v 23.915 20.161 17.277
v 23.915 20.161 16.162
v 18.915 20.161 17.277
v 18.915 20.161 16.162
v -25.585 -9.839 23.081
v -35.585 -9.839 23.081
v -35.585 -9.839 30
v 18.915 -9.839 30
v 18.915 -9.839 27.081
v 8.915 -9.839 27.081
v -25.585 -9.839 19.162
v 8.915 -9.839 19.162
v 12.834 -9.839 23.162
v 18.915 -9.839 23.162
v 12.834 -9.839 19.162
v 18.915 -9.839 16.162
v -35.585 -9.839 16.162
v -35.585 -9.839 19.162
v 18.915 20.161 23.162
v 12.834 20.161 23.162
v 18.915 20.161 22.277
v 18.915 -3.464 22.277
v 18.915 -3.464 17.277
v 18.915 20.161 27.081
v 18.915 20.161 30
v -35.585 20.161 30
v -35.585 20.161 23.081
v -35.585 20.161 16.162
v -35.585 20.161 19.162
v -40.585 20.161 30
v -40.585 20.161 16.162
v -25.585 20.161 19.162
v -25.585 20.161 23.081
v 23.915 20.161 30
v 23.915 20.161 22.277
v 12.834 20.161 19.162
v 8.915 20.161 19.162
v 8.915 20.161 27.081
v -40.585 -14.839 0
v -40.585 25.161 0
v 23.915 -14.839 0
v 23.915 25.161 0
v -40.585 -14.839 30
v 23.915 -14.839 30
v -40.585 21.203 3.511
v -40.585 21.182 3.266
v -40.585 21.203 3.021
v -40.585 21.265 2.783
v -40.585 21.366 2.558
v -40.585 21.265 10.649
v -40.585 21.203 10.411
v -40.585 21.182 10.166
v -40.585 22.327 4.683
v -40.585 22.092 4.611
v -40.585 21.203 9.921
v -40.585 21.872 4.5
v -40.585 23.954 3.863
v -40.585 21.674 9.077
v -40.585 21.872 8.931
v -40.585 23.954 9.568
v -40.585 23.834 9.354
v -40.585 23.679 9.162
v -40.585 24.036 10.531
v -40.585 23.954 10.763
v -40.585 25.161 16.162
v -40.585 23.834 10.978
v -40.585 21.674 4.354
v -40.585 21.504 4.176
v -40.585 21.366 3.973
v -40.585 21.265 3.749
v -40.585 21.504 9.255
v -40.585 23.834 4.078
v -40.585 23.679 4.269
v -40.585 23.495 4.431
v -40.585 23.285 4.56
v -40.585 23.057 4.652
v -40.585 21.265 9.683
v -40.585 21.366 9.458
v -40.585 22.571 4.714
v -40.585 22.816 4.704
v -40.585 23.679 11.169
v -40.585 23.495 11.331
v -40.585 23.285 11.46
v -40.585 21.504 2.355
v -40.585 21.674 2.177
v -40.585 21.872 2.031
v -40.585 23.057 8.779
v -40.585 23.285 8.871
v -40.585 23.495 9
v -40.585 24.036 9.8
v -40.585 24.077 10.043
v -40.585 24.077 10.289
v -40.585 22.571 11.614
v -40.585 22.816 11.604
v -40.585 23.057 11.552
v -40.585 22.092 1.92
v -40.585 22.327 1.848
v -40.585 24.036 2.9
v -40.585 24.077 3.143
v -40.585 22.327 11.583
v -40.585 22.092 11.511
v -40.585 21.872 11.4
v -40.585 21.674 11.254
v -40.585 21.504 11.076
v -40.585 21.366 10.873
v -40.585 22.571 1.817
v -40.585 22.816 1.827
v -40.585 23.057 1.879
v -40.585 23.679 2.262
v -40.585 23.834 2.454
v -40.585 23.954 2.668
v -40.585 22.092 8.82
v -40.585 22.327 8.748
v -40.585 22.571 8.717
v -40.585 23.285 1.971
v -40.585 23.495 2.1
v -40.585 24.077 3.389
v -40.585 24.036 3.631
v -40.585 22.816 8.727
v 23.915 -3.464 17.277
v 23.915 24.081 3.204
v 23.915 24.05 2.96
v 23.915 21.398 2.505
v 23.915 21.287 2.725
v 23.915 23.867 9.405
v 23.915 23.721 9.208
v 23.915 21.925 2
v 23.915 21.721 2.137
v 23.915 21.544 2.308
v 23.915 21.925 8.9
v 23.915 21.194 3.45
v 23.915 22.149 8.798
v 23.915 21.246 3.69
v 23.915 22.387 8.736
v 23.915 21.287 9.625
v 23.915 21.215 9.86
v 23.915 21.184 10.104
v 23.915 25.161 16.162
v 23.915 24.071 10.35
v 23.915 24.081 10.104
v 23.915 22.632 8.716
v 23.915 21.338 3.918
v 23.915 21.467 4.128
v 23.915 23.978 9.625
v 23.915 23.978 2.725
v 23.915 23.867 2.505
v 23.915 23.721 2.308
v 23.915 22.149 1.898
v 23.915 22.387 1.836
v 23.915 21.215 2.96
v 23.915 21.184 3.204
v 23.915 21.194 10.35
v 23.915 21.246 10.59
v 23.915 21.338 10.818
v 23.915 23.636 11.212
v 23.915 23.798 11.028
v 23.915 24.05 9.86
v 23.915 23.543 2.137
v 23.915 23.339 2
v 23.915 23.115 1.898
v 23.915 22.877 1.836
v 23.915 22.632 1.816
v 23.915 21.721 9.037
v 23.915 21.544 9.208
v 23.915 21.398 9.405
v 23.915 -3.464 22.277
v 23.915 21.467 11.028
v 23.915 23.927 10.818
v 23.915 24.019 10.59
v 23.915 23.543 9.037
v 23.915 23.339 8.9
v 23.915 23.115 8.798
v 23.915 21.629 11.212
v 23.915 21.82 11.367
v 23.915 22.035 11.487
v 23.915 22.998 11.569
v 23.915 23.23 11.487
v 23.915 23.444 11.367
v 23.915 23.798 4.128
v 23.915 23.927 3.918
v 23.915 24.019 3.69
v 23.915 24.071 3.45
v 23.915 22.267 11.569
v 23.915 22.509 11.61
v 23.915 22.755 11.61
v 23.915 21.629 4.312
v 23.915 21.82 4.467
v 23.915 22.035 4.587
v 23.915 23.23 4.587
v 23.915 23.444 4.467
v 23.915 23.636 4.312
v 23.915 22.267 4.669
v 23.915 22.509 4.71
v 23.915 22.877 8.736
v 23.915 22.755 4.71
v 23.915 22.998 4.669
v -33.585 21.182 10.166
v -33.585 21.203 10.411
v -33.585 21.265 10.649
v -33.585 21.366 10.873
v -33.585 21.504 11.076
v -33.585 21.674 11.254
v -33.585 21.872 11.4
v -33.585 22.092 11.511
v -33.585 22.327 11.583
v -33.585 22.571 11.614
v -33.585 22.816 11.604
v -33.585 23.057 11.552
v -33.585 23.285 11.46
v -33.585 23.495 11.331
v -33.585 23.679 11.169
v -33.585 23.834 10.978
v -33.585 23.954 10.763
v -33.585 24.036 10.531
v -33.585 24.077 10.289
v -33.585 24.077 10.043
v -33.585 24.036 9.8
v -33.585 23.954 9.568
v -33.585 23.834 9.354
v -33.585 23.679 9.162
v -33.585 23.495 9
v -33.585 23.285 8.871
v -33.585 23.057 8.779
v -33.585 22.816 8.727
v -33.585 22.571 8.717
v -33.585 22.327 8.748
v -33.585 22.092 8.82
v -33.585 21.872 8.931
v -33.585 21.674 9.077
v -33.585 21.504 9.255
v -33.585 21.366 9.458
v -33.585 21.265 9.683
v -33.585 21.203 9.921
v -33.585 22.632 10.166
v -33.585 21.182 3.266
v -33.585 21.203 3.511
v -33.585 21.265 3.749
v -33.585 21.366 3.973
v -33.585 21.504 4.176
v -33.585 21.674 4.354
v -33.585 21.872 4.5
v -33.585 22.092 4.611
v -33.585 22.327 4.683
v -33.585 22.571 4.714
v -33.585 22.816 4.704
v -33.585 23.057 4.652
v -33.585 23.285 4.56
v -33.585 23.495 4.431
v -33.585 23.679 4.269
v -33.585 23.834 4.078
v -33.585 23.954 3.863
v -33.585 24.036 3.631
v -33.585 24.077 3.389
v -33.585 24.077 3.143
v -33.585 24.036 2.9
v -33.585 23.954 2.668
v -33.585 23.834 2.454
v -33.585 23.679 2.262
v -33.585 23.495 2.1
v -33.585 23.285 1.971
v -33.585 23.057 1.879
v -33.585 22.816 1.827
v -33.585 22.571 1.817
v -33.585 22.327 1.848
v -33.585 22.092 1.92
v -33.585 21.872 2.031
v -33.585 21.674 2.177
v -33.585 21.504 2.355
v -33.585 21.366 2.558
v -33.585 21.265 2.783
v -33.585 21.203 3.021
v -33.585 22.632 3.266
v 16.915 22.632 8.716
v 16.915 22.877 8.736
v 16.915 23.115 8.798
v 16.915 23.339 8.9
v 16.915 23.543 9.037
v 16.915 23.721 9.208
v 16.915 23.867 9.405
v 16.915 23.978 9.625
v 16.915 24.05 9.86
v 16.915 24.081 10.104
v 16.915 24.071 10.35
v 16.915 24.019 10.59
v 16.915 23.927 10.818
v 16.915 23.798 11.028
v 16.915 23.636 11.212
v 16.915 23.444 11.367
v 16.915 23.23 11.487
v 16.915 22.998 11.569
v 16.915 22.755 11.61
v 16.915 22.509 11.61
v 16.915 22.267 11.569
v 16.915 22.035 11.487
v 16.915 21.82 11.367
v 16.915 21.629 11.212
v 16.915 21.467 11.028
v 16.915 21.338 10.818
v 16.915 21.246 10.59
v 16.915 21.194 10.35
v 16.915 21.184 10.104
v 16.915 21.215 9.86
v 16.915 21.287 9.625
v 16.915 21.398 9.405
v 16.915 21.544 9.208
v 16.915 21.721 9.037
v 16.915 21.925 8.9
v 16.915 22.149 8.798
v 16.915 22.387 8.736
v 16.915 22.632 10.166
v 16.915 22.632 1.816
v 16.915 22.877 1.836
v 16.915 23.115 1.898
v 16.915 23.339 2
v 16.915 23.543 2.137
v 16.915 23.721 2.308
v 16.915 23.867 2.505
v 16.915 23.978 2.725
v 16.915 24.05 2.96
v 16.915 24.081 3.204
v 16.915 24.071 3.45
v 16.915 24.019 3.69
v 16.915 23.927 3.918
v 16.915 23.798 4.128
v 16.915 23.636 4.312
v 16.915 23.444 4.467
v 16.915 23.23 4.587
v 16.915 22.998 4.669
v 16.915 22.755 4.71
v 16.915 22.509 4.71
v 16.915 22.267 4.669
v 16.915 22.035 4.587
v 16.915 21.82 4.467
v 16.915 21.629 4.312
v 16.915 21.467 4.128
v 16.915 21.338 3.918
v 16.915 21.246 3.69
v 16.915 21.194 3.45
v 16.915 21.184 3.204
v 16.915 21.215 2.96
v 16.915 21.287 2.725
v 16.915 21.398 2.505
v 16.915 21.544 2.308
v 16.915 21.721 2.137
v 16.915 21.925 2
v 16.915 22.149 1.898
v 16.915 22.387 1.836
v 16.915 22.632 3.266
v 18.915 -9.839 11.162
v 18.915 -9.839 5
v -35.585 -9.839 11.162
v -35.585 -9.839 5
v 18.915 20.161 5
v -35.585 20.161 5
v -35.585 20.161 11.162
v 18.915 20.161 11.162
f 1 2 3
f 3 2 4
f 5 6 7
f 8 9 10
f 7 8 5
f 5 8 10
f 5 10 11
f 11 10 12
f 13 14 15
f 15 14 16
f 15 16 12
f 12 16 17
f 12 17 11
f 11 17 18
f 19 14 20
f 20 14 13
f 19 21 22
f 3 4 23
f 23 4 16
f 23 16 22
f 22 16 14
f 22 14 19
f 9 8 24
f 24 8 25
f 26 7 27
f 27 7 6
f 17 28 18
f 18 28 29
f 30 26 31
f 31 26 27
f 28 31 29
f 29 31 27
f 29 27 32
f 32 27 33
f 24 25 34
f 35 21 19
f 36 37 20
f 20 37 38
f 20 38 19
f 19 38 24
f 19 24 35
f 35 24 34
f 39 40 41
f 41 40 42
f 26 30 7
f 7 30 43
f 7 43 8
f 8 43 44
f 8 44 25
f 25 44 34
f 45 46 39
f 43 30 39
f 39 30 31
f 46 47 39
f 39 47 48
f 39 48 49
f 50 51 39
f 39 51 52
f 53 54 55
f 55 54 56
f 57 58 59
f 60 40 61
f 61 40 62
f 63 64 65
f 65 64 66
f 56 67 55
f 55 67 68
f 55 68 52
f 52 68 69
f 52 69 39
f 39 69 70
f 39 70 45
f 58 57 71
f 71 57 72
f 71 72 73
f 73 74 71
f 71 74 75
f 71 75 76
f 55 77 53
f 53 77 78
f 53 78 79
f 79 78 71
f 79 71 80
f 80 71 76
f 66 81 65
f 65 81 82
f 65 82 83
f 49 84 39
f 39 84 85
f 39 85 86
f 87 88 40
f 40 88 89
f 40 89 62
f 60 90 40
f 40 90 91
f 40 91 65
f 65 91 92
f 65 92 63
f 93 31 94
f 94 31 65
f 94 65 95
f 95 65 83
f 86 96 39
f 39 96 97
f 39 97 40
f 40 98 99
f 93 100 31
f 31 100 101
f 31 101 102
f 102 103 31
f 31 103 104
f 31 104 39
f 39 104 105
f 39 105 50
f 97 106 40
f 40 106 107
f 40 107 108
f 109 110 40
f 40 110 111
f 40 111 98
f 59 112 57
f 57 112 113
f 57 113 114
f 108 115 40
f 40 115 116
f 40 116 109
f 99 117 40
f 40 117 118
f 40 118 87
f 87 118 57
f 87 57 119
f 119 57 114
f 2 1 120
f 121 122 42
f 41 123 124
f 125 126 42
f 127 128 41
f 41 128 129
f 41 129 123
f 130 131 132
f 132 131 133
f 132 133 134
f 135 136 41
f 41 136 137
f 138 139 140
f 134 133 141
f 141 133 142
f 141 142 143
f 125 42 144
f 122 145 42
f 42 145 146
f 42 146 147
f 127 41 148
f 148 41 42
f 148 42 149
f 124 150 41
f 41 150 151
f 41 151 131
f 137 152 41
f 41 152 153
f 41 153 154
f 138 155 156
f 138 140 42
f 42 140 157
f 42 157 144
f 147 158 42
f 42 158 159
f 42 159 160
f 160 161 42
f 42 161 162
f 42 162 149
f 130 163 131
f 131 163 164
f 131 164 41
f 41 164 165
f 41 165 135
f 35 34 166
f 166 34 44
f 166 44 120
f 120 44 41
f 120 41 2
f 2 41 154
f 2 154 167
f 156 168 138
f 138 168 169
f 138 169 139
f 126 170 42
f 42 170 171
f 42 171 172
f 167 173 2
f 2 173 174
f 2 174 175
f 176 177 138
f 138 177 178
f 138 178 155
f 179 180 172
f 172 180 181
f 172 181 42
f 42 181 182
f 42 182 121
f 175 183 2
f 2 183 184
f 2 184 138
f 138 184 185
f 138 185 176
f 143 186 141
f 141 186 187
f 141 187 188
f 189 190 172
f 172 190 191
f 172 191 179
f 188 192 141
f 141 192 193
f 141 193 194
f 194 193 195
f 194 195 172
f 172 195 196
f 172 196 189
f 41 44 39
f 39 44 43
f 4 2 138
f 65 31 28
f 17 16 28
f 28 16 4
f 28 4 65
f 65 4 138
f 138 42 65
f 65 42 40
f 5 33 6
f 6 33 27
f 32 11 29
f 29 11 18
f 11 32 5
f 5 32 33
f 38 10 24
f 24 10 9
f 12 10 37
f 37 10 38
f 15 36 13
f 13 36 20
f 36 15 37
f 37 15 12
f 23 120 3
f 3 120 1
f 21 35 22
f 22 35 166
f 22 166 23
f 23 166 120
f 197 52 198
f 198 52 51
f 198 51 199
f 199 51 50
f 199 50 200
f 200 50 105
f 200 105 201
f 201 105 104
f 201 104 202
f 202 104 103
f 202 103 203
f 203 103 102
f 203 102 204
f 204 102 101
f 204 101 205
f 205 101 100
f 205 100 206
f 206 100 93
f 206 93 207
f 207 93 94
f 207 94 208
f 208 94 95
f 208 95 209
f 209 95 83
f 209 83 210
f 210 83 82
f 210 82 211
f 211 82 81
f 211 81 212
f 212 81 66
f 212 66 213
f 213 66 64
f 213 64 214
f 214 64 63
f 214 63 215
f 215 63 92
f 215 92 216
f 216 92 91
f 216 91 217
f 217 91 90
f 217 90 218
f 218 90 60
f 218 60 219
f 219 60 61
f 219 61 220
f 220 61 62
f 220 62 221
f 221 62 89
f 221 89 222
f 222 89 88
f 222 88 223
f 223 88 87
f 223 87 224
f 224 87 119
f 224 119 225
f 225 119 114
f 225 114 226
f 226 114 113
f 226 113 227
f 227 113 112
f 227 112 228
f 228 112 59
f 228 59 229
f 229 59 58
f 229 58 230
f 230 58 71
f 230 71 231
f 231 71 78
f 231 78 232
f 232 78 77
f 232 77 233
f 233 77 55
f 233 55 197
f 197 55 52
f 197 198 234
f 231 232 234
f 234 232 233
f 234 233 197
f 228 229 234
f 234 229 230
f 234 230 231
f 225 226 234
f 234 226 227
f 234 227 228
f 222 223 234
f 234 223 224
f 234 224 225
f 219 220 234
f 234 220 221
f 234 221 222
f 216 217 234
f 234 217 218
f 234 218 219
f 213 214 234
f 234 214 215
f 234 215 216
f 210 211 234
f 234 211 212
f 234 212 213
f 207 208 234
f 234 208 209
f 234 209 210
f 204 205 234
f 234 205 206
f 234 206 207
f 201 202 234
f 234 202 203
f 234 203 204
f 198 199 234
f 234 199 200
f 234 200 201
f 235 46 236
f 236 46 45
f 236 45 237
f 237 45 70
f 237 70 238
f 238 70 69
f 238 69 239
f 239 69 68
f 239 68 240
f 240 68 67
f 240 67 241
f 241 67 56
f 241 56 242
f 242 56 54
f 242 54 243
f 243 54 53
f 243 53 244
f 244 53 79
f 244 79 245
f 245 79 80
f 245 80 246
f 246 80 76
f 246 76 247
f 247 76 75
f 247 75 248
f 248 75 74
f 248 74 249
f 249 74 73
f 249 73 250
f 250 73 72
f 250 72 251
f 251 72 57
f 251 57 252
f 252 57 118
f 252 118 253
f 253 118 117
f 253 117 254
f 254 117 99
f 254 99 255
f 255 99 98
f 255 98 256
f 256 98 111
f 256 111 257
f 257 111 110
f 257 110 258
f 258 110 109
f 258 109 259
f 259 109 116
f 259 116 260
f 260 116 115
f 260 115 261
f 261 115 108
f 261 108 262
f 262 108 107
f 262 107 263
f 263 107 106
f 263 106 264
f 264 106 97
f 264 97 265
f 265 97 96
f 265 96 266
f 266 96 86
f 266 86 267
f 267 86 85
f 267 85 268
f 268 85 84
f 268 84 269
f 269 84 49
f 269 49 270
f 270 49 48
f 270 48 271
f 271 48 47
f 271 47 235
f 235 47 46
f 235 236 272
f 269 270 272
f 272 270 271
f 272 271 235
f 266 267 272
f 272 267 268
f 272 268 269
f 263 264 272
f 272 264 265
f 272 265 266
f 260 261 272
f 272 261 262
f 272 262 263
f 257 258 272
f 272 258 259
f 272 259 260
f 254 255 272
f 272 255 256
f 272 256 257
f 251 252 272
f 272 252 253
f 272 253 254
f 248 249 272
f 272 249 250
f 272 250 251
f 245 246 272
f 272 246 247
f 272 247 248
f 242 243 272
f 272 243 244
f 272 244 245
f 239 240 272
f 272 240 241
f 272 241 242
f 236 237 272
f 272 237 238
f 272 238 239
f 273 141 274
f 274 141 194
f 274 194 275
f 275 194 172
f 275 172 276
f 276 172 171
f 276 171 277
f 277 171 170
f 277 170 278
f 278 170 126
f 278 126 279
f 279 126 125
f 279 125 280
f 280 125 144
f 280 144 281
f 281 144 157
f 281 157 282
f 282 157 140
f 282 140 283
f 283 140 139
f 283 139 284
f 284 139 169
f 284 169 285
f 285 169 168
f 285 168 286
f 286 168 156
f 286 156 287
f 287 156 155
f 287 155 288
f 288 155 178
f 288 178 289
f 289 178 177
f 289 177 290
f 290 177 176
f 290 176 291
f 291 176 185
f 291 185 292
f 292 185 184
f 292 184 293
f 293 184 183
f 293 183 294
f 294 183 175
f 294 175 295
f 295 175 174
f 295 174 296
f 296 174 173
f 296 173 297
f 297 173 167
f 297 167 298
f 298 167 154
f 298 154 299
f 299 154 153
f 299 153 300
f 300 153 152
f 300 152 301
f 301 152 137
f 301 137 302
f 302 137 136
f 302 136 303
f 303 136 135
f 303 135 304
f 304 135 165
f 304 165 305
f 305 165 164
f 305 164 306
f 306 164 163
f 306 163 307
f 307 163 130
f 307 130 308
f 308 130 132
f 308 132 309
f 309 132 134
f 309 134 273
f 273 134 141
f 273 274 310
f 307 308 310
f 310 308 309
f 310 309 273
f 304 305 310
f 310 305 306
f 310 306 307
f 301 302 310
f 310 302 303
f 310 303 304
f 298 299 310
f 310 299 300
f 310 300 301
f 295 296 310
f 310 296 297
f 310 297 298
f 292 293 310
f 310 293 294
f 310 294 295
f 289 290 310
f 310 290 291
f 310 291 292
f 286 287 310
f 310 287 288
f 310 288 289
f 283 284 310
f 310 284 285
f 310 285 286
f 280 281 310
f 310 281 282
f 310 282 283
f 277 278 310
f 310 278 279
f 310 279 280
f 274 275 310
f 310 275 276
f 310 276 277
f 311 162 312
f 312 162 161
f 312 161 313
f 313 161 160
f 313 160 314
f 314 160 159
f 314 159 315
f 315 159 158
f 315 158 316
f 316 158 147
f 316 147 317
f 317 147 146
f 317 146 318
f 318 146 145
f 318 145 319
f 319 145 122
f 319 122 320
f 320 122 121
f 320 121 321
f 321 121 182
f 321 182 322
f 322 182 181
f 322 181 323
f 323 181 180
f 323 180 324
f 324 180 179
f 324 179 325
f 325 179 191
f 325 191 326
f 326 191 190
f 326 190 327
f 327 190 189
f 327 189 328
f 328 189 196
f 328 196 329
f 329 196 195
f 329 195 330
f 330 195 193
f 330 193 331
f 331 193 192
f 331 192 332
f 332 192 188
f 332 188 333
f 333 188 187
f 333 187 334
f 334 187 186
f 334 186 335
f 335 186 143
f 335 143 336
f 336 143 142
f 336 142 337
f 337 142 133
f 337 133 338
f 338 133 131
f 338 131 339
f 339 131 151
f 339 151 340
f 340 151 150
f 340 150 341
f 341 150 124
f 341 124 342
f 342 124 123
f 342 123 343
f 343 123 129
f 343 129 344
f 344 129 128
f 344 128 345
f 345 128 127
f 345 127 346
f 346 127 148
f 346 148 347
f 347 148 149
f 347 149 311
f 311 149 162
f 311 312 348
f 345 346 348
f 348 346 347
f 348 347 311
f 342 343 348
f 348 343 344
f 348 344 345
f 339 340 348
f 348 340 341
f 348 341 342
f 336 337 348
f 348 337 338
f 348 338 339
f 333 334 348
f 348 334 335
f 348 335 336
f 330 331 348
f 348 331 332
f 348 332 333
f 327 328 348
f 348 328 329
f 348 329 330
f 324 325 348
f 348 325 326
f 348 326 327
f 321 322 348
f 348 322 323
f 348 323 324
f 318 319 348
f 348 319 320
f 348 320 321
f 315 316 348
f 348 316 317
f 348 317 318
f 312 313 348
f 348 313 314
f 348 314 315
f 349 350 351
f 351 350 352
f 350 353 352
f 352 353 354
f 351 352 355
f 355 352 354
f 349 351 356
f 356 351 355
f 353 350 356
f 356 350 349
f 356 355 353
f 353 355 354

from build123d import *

# Parameters (mm, degrees)
ESQUISSE1_W             = 54.5
ESQUISSE1_H             = 30
BOSS_EXTRU_8_DEPTH      = 5
ESQUISSE7_W             = 30
ESQUISSE7_H             = 30
BOSS_EXTRU_9_DEPTH      = 5
ESQUISSE8_W             = 30
ESQUISSE8_H             = 30
BOSS_EXTRU_10_DEPTH     = 5
ESQUISSE9_W             = 64.5
ESQUISSE9_H             = 30
BOSS_EXTRU_11_DEPTH     = 5
ESQUISSE10_W            = 5
ESQUISSE10_H            = 30
BOSS_EXTRU_12_DEPTH     = 55
ESQUISSE11_W            = 64.5
ESQUISSE11_H            = 16.16204781
BOSS_EXTRU_13_DEPTH     = 5
ESQUISSE13_W            = 3.918976095
ESQUISSE13_H            = 30
BOSS_EXTRU_14_DEPTH     = 10
ESQUISSE16_W            = 3.9189761
ESQUISSE16_H            = 30
BOSS_EXTRU_15_DEPTH     = 10
ESQUISSE17_W            = 3.9189761
ESQUISSE17_H            = 30
BOSS_EXTRU_16_DEPTH     = 4
ESQUISSE20_W            = 5
ESQUISSE20_H            = 23.625106292
ENL_V_MAT_EXTRU_2_DEPTH = 7
ESQUISSE21_R            = 1.45
ENL_V_MAT_EXTRU_3_DEPTH = 7
ENL_V_START             = -7
ESQUISSE22_R            = 1.45
ENL_V_MAT_EXTRU_4_DEPTH = 7


with BuildPart() as part:
    # Esquisse1 → Boss.-Extru.8 (new body)
    with BuildSketch(Plane.XY):
        with Locations((-8.335450003, 5.161172161)):
            Rectangle(ESQUISSE1_W, ESQUISSE1_H)
    extrude(amount=BOSS_EXTRU_8_DEPTH)

    # Esquisse7 → Boss.-Extru.9 (add)
    with BuildSketch(Plane.ZY.offset(35.585450003)):
        with Locations((15, 5.161172161)):
            Rectangle(ESQUISSE7_W, ESQUISSE7_H)
    extrude(amount=BOSS_EXTRU_9_DEPTH)

    # Esquisse8 → Boss.-Extru.10 (add)
    with BuildSketch(Plane(origin=(18.914549997, 0, 0), x_dir=(0, 0, -1), z_dir=(1, 0, 0))):
        with Locations((-15, 5.161172161)):
            Rectangle(ESQUISSE8_W, ESQUISSE8_H)
    extrude(amount=BOSS_EXTRU_10_DEPTH)

    # Esquisse9 → Boss.-Extru.11 (add)
    with BuildSketch(Plane.XZ.offset(9.838827839)):
        with Locations((-8.335450003, 15)):
            Rectangle(ESQUISSE9_W, ESQUISSE9_H)
    extrude(amount=BOSS_EXTRU_11_DEPTH)

    # Esquisse10 → Boss.-Extru.12 (add)
    with BuildSketch(Plane(origin=(-35.585450003, 0, 0), x_dir=(0, 0, -1), z_dir=(1, 0, 0))):
        with Locations((-13.66204781, 5.161172161)):
            Rectangle(ESQUISSE10_W, ESQUISSE10_H)
    extrude(amount=BOSS_EXTRU_12_DEPTH)

    # Esquisse11 → Boss.-Extru.13 (add)
    with BuildSketch(Plane(origin=(0, 20.161172161, 0), x_dir=(1, 0, 0), z_dir=(0, 1, 0))):
        with Locations((-8.335450003, -8.081023905)):
            Rectangle(ESQUISSE11_W, ESQUISSE11_H)
    extrude(amount=BOSS_EXTRU_13_DEPTH)

    # Esquisse13 → Boss.-Extru.14 (add)
    with BuildSketch(Plane(origin=(-35.585450003, 0, 0), x_dir=(0, 0, -1), z_dir=(1, 0, 0))):
        with Locations((-21.121535857, 5.161172161)):
            Rectangle(ESQUISSE13_W, ESQUISSE13_H)
    extrude(amount=BOSS_EXTRU_14_DEPTH)

    # Esquisse16 → Boss.-Extru.15 (add)
    with BuildSketch(Plane.ZY.offset(-18.914549997)):
        with Locations((25.12153586, 5.161172161)):
            Rectangle(ESQUISSE16_W, ESQUISSE16_H)
    extrude(amount=BOSS_EXTRU_15_DEPTH)

    # Esquisse17 → Boss.-Extru.16 (add)
    with BuildSketch(Plane(origin=(0, 0, 23.16204781), x_dir=(-1, 0, 0), z_dir=(0, 0, -1))):
        with Locations((-10.874038047, 5.161172161)):
            Rectangle(ESQUISSE17_W, ESQUISSE17_H)
    extrude(amount=BOSS_EXTRU_16_DEPTH)

    # Esquisse20 → Enlèv. mat.-Extru.2 (cut)
    with BuildSketch(Plane.ZY.offset(-18.914549997)):
        with Locations((19.77668855, 8.348619015)):
            Rectangle(ESQUISSE20_W, ESQUISSE20_H)
    extrude(amount=-ENL_V_MAT_EXTRU_2_DEPTH, mode=Mode.SUBTRACT)

    # Esquisse21 → Enlèv. mat.-Extru.3 (cut)
    with BuildSketch(Plane.ZY.offset(40.585450003)):
        with Locations(Location((3.265574061, 22.632321906, 0), (0, 0, 270))):
            Circle(ESQUISSE21_R)
        with Locations(Location((10.165574061, 22.632321906, 0), (0, 0, 270))):
            Circle(ESQUISSE21_R)
    extrude(amount=-ENL_V_MAT_EXTRU_3_DEPTH, mode=Mode.SUBTRACT)

    # Esquisse22 → Enlèv. mat.-Extru.4 (cut)
    with BuildSketch(Plane(origin=(23.914549997, 0, 0), x_dir=(0, 0, -1), z_dir=(1, 0, 0)).offset(ENL_V_START)):
        with Locations(Location((-3.26557406, 22.632321901, 0), (0, 0, 269.999999963))):
            Circle(ESQUISSE22_R)
        with Locations(Location((-10.16557406, 22.632321901, 0), (0, 0, 269.999999963))):
            Circle(ESQUISSE22_R)
    extrude(amount=ENL_V_MAT_EXTRU_4_DEPTH, mode=Mode.SUBTRACT)


solid = part.part
